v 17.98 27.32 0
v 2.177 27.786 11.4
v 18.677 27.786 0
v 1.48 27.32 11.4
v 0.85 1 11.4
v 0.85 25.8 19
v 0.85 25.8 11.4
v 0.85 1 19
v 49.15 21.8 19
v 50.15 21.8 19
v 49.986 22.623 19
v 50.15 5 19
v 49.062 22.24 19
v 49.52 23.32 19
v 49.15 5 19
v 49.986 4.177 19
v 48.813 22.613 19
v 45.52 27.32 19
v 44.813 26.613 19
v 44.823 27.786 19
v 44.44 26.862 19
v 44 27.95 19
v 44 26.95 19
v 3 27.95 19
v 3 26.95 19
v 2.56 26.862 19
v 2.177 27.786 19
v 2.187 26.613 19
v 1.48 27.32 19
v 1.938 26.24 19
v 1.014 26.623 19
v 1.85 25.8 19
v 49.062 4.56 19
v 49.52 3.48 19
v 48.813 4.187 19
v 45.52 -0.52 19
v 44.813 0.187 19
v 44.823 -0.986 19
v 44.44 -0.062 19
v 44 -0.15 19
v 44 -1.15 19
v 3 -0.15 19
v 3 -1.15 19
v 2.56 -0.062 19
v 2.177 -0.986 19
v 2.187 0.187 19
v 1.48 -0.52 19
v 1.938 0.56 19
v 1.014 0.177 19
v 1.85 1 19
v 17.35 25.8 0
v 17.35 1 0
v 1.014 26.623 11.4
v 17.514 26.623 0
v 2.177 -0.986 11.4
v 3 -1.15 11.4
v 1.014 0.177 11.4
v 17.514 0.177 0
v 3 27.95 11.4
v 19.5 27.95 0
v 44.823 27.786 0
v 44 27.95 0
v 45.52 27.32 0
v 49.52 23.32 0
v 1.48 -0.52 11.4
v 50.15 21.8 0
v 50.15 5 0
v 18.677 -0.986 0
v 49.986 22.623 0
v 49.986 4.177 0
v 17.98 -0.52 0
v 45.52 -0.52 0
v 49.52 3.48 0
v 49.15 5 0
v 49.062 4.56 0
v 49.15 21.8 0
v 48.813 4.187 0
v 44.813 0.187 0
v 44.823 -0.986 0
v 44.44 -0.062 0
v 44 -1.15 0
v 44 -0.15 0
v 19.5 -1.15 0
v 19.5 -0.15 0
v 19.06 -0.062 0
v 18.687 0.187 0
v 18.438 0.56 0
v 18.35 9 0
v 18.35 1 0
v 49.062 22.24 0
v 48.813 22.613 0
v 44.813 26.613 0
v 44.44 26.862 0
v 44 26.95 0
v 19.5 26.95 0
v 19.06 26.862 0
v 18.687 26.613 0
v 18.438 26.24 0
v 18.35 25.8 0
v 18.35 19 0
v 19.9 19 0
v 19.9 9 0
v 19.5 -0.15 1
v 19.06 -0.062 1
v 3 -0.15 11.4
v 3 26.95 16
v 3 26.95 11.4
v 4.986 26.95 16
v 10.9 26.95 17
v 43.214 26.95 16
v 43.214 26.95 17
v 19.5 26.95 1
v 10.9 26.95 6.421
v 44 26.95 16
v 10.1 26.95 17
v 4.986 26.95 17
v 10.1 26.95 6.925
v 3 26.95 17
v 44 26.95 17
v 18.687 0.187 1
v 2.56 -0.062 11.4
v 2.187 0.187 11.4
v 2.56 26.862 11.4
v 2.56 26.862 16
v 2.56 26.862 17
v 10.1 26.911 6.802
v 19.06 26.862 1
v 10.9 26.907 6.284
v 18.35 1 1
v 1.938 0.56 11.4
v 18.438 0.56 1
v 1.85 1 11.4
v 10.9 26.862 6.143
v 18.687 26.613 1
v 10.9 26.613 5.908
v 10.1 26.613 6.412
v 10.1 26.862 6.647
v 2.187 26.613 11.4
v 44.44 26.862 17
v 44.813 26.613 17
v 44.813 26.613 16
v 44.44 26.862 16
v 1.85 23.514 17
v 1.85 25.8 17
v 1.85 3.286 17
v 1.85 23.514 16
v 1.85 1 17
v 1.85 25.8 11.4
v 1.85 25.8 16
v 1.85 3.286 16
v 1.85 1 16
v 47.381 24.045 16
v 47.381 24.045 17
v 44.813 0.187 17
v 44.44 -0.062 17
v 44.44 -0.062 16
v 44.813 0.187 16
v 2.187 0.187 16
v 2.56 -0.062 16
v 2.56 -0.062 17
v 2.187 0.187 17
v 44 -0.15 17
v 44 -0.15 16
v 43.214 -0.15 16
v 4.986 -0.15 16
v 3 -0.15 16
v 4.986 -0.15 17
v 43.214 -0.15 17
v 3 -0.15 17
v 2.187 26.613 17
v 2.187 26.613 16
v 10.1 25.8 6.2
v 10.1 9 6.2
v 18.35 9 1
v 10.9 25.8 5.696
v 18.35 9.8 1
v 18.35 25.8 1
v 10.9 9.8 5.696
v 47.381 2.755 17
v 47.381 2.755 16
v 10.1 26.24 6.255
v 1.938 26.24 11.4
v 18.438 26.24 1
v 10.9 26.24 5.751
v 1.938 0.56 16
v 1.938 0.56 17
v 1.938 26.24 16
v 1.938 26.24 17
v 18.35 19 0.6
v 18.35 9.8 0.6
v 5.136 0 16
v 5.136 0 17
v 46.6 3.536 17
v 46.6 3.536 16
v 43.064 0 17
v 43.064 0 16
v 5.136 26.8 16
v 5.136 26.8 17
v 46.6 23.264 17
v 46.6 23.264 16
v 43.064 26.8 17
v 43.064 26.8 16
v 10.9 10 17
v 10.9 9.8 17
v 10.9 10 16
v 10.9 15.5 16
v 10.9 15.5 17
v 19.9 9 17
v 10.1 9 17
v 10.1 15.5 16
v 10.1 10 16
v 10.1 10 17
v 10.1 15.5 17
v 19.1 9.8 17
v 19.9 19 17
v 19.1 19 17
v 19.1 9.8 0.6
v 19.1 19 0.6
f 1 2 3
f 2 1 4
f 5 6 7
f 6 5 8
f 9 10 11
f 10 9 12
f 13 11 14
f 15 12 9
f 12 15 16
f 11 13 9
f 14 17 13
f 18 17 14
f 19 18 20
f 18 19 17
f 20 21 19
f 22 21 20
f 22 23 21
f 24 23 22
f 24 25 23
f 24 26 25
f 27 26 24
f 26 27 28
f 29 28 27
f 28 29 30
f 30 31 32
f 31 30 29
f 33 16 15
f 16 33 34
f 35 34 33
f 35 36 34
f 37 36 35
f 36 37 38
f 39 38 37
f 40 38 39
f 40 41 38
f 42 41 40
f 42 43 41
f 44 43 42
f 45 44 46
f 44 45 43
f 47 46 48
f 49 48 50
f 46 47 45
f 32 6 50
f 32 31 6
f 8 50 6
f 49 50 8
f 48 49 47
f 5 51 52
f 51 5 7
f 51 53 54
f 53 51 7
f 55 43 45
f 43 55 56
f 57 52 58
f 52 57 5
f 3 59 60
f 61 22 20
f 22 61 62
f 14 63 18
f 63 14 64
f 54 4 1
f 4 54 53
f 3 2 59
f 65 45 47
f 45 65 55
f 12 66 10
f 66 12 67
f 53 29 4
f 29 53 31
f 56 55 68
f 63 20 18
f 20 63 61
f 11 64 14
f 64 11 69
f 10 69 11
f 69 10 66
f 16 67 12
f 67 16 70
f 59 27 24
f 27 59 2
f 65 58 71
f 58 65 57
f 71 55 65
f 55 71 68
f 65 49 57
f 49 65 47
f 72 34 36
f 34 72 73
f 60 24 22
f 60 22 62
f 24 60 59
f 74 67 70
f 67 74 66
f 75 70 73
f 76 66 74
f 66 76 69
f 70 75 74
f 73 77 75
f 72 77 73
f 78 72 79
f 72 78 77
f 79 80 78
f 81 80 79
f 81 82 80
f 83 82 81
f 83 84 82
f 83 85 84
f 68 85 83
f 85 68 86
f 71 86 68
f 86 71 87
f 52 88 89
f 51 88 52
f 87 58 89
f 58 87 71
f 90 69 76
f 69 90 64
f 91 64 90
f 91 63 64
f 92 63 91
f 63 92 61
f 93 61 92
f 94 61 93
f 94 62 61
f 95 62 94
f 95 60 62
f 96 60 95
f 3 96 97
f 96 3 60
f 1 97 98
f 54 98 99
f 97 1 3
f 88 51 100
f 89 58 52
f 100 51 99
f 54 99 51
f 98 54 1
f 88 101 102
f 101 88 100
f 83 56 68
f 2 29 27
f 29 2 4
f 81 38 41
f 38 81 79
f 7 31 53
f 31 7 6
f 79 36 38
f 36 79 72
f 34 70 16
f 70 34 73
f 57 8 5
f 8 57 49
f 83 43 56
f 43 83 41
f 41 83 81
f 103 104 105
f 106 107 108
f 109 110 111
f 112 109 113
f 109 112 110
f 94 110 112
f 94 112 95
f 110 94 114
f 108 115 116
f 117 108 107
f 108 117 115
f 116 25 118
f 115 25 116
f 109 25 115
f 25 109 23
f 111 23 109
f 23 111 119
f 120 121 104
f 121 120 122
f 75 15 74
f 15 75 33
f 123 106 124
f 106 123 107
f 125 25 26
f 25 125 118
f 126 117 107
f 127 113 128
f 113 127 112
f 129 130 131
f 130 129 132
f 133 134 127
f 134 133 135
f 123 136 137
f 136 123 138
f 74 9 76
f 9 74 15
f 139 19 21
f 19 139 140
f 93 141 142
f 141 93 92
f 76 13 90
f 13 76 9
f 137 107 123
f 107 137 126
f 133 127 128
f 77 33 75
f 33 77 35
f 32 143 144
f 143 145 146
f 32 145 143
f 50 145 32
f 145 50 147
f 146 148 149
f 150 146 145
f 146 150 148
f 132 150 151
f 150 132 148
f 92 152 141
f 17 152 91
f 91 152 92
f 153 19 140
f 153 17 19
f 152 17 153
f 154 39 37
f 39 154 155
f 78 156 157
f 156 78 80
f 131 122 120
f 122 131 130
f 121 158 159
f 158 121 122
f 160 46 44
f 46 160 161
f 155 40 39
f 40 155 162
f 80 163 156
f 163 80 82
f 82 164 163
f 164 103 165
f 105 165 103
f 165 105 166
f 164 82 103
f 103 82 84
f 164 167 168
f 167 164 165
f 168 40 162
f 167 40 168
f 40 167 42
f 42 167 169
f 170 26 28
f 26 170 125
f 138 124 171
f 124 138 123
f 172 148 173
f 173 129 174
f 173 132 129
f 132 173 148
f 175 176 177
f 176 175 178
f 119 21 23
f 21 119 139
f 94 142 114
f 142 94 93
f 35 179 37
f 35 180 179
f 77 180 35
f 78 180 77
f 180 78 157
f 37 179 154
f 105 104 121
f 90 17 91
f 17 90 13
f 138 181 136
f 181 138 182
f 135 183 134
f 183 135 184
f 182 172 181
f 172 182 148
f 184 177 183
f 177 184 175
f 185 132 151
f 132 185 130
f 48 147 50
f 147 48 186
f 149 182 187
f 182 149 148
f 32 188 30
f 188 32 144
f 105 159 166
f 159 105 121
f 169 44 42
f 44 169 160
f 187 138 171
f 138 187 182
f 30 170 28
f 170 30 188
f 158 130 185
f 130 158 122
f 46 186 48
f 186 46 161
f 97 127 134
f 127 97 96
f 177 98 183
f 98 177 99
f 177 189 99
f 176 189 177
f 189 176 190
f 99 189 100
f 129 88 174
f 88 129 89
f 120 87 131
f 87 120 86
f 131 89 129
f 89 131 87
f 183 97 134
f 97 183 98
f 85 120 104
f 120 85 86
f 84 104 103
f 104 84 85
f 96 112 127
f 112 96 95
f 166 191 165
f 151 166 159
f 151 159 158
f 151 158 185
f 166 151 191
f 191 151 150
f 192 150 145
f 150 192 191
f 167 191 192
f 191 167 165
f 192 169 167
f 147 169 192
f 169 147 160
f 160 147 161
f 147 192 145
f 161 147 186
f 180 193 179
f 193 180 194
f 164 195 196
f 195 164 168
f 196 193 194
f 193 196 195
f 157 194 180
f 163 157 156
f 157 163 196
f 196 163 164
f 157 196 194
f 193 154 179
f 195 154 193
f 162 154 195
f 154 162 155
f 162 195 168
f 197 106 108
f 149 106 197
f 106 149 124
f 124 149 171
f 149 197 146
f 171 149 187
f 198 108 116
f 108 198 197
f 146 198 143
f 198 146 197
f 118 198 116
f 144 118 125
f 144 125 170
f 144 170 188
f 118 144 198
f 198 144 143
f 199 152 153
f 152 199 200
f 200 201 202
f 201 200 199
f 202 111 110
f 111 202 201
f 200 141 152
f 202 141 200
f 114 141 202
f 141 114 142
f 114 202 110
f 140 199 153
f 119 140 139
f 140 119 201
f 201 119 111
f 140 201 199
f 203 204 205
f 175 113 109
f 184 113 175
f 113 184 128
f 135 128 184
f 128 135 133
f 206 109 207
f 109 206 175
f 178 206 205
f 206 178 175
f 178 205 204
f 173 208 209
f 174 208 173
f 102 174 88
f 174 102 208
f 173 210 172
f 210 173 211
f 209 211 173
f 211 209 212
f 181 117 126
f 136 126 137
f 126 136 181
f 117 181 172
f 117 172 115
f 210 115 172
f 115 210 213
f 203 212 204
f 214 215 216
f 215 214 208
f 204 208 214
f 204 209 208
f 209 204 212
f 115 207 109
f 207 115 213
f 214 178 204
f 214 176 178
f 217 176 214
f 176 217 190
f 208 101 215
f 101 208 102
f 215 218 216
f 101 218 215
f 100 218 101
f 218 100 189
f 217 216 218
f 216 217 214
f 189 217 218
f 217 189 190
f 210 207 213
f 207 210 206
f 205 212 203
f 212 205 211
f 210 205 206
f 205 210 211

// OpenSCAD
// file: xt.scad
e=.001;
$fn=16;

xt60_w=15.7;
xt60_h=8;
xt60f_d = 15.7;
xt60f_base_d = 8;
xt60_combined_d=24.1;
xt60_pitch=7;
xt60_chamfer=2.5;
xt60f_pin_d=5.7;
xt60m_pin_d=4.7;
xt60_pin_w=4.5;
xt60_hole_w=4.5;
xt60_corner=.5;

module xt_pins(width, height, pitch)
{
	for (p=[-pitch/2, pitch/2])
	translate([p,0,0])
	cylinder(h=height, r=width/2);
}

module xt_base(w, h, d, chamfer, corner, margin=0, e=0)
{
	w = w-2*corner;
	h = h-2*corner;
	r = corner+margin;
	translate([0,0,-e])
    linear_extrude(d+2*e)
	hull()
    for (p=[ [w/2,-h/2],
	         [-w/2+chamfer, -h/2],
	         [-w/2, -h/2+chamfer],
	         [-w/2, h/2-chamfer],
	         [-w/2+chamfer, h/2],
	         [w/2, h/2]
	])
	translate(p)
	circle(r);
}

module xt60_combined_shell_cutout(margin=0,f_margin=-1,m_margin=-1, e=0)
{
	b=1; 
	xt_base(xt60_w, xt60_h, xt60_combined_d, xt60_chamfer, xt60_corner, margin, e);
	if (f_margin > margin)
	hull()
	{
		xt_base(xt60_w, xt60_h, xt60f_base_d, xt60_chamfer, xt60_corner, f_margin, e);
		translate([0,0,xt60f_base_d])
		xt_base(xt60_w, xt60_h, f_margin-margin, xt60_chamfer, xt60_corner, margin, e);
	}
	if (m_margin > margin)
	hull()
	{
		translate([0,0,xt60f_base_d-(m_margin-margin)])
		xt_base(xt60_w, xt60_h, m_margin-margin, xt60_chamfer, xt60_corner, margin, e);
		translate([0,0,xt60f_base_d])
		xt_base(xt60_w, xt60_h, xt60_combined_d-xt60f_base_d, xt60_chamfer, xt60_corner, m_margin, e);
	}
}


module xt60_combined_cutout(margin=0,f_margin=-1,m_margin=-1, e=0)
{
	b=1; 
	xt60_combined_shell_cutout(margin,f_margin,m_margin, e);

	translate([0, 0, -xt60f_pin_d-margin])
	xt_pins(xt60_pin_w+margin*2, xt60f_pin_d+b+margin, xt60_pitch);

	translate([0, 0, xt60_combined_d-b])
	xt_pins(xt60_pin_w+margin*2, xt60m_pin_d+b+margin, xt60_pitch);
}

module xt60f_cutout(margin=0,f_margin=-1,m_margin=-1,e=0)
{
	translate([0,0,-xt60f_d])
	xt60_combined_cutout(margin,f_margin,m_margin,e);
}

module xt60f_shell_cutout(margin=0,f_margin=-1,m_margin=-1,e=0)
{
	translate([0,0,-xt60f_d])
	xt60_combined_shell_cutout(margin,f_margin,m_margin,e);
}

module xt60f()
{
	b=1;
	translate([0,0,-xt60f_d])
	{
		xt_base(xt60_w, xt60_h, xt60f_base_d, xt60_chamfer, xt60_corner, 0, e);

		translate([0,0,b])
		difference()
		{
			xt_base(xt60_w-2*xt60_corner, xt60_h-2*xt60_corner, xt60f_d-b, xt60_chamfer, xt60_corner, 0, e);
			xt_pins(xt60_hole_w, xt60f_d, xt60_pitch);

		}

		difference()
		{
			translate([0, 0, -xt60f_pin_d])
			xt_pins(xt60_pin_w, xt60f_pin_d+b, xt60_pitch);

			translate([0, 0, -xt60f_pin_d-b])
			xt_pins(xt60_pin_w*.8, xt60f_pin_d+b, xt60_pitch);
		}
	}
}

xt60f();
%xt60f_cutout(margin=.4,m_margin=1,e=e);
// file: powerplug.scad
e=0.001;

border_w=51;
border_h=31.2;
border_d=3.5;

w=47;
h=26.8;
d=22;
chamf=4;

corner=1;

module plug(margin=0, extra_depth=0)
{
	$fn=16;

	d = d+extra_depth;
	border_w = border_w-2*corner;
	border_h = border_h-2*corner;
	w = w-2*corner;
	h = h-2*corner;
	r = corner+margin;

	color([.3,.3,.3])
	translate([corner,0,corner])
	rotate([90,0,0])
	{
		translate([0,(h-border_h)/2,0])
		linear_extrude(border_d+margin)
		hull()
		for(p=[ [0, 0],
		        [0, border_h],
		        [border_w, border_h],
		        [border_w, 0]
		])
		translate(p)
		circle(r);

		translate([(border_w-w)/2,0,-d])
		linear_extrude(d+e)
		hull()
		for (p=[ [0, 0],
		         [0, h],
		         [w-chamf, h],
		         [w, h-chamf],
		         [w, chamf],
		         [w- chamf, 0],
		])
		translate(p)
		circle(r);
	}
}

module plug_latch(margin=0)
{
	rotate([90,0,0])
	rotate([0,90,0])
	linear_extrude(9)
	{
		polygon([ [0, -1], [0, 1+margin], [9, margin]]);
	}
}

module plug_latches(margin=0)
{
	for (x=[9.5,32])
	for (y_flip=[-1, 1])
	translate([(border_w-w)/2+x,1.6, h/2])
	scale([1,1,y_flip])
	translate([0,0,h/2])
	plug_latch(margin);
}


module plug_latches_keepout(margin=0, extra_depth=0)
{
	for (x=[9.5,32])
	for (y_flip=[-1, 1])
	translate([(border_w-w)/2+x,1.6, h/2])
	scale([1,1,y_flip])
	translate([0,0,h/2])
	cube([9,d+extra_depth-1.6+e,1+margin]);
}

plug();

plug_latches();

#plug_latches_keepout();

%plug(margin=.3);
// file: mw_lrs.scad
e=.001;
$fn=16;

mw_lrs_w=115;
mw_lrs_h=30;
mw_lrs_d=215;


mw_lrs_holes_pitch_d  = 150;
mw_lrs_holes_pitch_w  = 50;
mw_lrs_holes_height_h = 12.5;

mw_lrs_gap_h = 23;
mw_lrs_gap_d = 18.5;

mw_lrs_case_thickness = 1.6;

m4_thread = 4;

mw_lrs_screw_terminal_x=8.5;
mw_lrs_screw_terminal_w=88;
mw_lrs_screw_terminal_d=15;
mw_lrs_screw_terminal_h=15;
mw_lrs_screw_terminal_pitch = 9.5;
mw_lrs_screw_terminal_gap_w = 8;
mw_lrs_screw_terminal_gap_d = 14;
mw_lrs_screw_terminal_gap_z = 7;
mw_lrs_screw_terminal_gap_h = 6;

module mw_lrs_side_holes()
{
	translate( [0, 0, mw_lrs_holes_height_h] )
	for( r = [ 0, 180 ] )
	rotate( [0, r, 0] )
	for( y = [ (mw_lrs_d-mw_lrs_holes_pitch_d)/2, (mw_lrs_d+mw_lrs_holes_pitch_d)/2 ] )
	translate( [-mw_lrs_w/2, y, 0] )
	rotate( [0, 90, 0] )
	children();
}

module mw_lrs_bottom_holes()
{
	for( x = [ -mw_lrs_holes_pitch_w/2, mw_lrs_holes_pitch_w/2 ] )
	for( y = [ (mw_lrs_d-mw_lrs_holes_pitch_d)/2, (mw_lrs_d+mw_lrs_holes_pitch_d)/2 ] )
	translate( [x, y, 0] )
	children();
}

module mw_lrs_holes()
{
	mw_lrs_side_holes() children();
	mw_lrs_bottom_holes() children();
}

module mw_lrs_screw_terminal()
{
	colors = [
		"red", "red", "red",
		"black", "black", "black",
		"green", "blue", "brown",
	];
	b=1;
	translate([mw_lrs_screw_terminal_x, mw_lrs_case_thickness, mw_lrs_h-mw_lrs_gap_h-e])
	{
		difference()
		{
			translate([-mw_lrs_screw_terminal_w/2, 0, 0])
			cube([mw_lrs_screw_terminal_w, mw_lrs_screw_terminal_d, mw_lrs_screw_terminal_h+e]);
			for (i=[0:8])
			translate([(i-4)*9.5-mw_lrs_screw_terminal_gap_w/2, -b, mw_lrs_screw_terminal_gap_z])
			cube([mw_lrs_screw_terminal_gap_w, mw_lrs_screw_terminal_gap_d+b, mw_lrs_screw_terminal_gap_h]);
		}

		for (i=[0:8])
		translate([(i-4)*9.5-mw_lrs_screw_terminal_gap_w/2, -0, mw_lrs_screw_terminal_h])
		color(colors[i])
		cube([mw_lrs_screw_terminal_gap_w,mw_lrs_screw_terminal_gap_d,.1]);

	}
}

module mw_lrs_vents()
{
	b=1;
	hole=4;
	for (y = [36, 44, 52])
	for (i = [-1, 1])
	hull()
	{
		translate([i*(19/2+hole/2), y, mw_lrs_h-mw_lrs_case_thickness-b])
			cylinder(mw_lrs_case_thickness+2*b, r=hole/2);

		translate([i*(19/2+hole/2+33), y, mw_lrs_h-mw_lrs_case_thickness-b])
			cylinder(mw_lrs_case_thickness+2*b, r=hole/2);
	}

	translate([-mw_lrs_w/2+36.7, mw_lrs_d-47.45,mw_lrs_h-mw_lrs_case_thickness-b])
		cylinder(mw_lrs_case_thickness+2*b, r=50/2);
}

module mw_lrs_vents_keepout(h, margin=0)
{
	b=1;
	hole=4;
	hull()
	for (y = [36, 44, 52])
	for (i = [-1, 1])
	{
		translate([i*(19/2+hole/2), y, mw_lrs_h-b])
			cylinder(h+b, r=hole/2+margin);

		translate([i*(19/2+hole/2+33), y, mw_lrs_h-b])
			cylinder(h+b, r=hole/2+margin);
	}

	translate([-mw_lrs_w/2+36.7, mw_lrs_d-47.45,mw_lrs_h-b])
		cylinder(h+b, r=50/2);
}

module mw_lrs()
{
	b=1; 

	union()
	{
		color([.75,.75,.75])
		difference()
		{

			translate([-mw_lrs_w/2,0,0])
			cube([mw_lrs_w, mw_lrs_d, mw_lrs_h]);

			union()
			{
				translate([-mw_lrs_w/2+mw_lrs_case_thickness, -b, mw_lrs_h-mw_lrs_gap_h] )
				cube( [ mw_lrs_w-2*mw_lrs_case_thickness, b+mw_lrs_gap_d, mw_lrs_gap_h+b] );

				translate([-mw_lrs_w/2+mw_lrs_case_thickness, mw_lrs_gap_d-e, mw_lrs_h-mw_lrs_gap_h] )
				cube( [ mw_lrs_w-2*mw_lrs_case_thickness, mw_lrs_d-mw_lrs_gap_d+e-mw_lrs_case_thickness, mw_lrs_gap_h-mw_lrs_case_thickness] );

				mw_lrs_vents();

				mw_lrs_holes()
				{
					translate([0,0,-e])
					cylinder(h=5+e, r=m4_thread/2);
				}
			}
		}
		color([.1, .3, .1])
		translate([-mw_lrs_w/2+mw_lrs_case_thickness, 0, mw_lrs_h-mw_lrs_gap_h-e])
		cube([mw_lrs_w-2*mw_lrs_case_thickness, mw_lrs_d-mw_lrs_case_thickness, e+.1]);
		mw_lrs_screw_terminal();
	}
}

module mw_lrs_keepout(margin=0, e=0)
{
	b=1; 

	w=mw_lrs_w+margin*2;
	d=mw_lrs_d+margin*2;
	h=mw_lrs_h+margin*2;

	translate([-w/2,-margin,-margin])
	cube([w, d, h]);
}

mw_lrs();
%mw_lrs_keepout(margin=.4);

module m4_hole(h, margin=0)
{
	translate([0,0,-h])
	cylinder(h=h+e, r=(m4_thread+margin)/2);
}

%mw_lrs_holes()
m4_hole(10);
// file: grid.scad
module bars(width, height, n, pitch, bar_width)
{
	for (i=[0:n-1])
		translate([0, (i-(n-1)/2)*pitch-bar_width/2, 0])
			cube([width, bar_width, height]);
}

module grid(width, depth, height, n_rows, n_cols, pitch=10, x_pitch=-1, y_pitch=-1, bar_width=1, x_bar_width=-1, y_bar_width=-1)
{
	x_pitch = x_pitch > 0 ? x_pitch : pitch;
	y_pitch = y_pitch > 0 ? y_pitch : pitch;
	x_bar_width = x_bar_width > 0 ? x_bar_width : bar_width;
	y_bar_width = y_bar_width > 0 ? y_bar_width : bar_width;

	translate( [0, depth/2, 0] )
		bars( width, height, n_rows, y_pitch, y_bar_width );
	translate( [width/2, 0, 0] )
		rotate([0,0,90])
			bars( depth, height, n_cols, x_pitch, x_bar_width) ;
}

grid(100, 50, 1, 4, 8);
// file: utils.scad
module xz_toward_y()
{
	scale([1, 1, -1])
	rotate([-90,0,0])
	children();
}

module anchor(dim, anchor=[0,0,0])
{
	translate([-(1+anchor.x)*dim.x/2, -(1+anchor.y)*dim.y/2, -(1+anchor.z)*dim.z/2])
	children();
}

module block(dim, anchor=[0,0,0])
{
	anchor(dim, anchor)
	cube(dim);
}

module rounded_block_z(dim, anchor=[0,0,0], r=0)
{
	anchor(dim, anchor)
	linear_extrude(dim.z)
	hull()
	for (p=[ [r,r], [dim.x-r, r], [dim.x-r, dim.y-r], [r, dim.y-r] ] )
	translate(p)
	circle(r);
}

module rounded_block_y(dim, anchor=[0,0,0], r=0)
{
	anchor(dim, anchor)
	xz_toward_y()
	linear_extrude(dim.y)
	hull()
	for (p=[ [r,r], [dim.x-r, r], [dim.x-r, dim.z-r], [r, dim.z-r] ] )
	translate(p)
	circle(r);
}

module chamfer_block_y(dim, anchor=[0,0,0], r=0)
{
	anchor(dim, anchor)
	hull()
	{
		translate([r,0,0])
		cube([dim.x-r*2, dim.y, dim.z]);

		translate([0,0,r])
		cube([dim.x, dim.y, dim.z-r*2]);
	}
}

module chamfer_block_z(dim, anchor=[0,0,0], r=0)
{
	anchor(dim, anchor)
	hull()
	{
		translate([r,0,0])
		cube([dim.x-r*2, dim.y, dim.z]);

		translate([0,r,0])
		cube([dim.x, dim.y-r*2, dim.z]);
	}
}

module chamfer_block(dim, anchor=[0,0,0], r=0)
{
	anchor(dim, anchor)
	hull()
	{
		translate([r,r,0])
		cube([dim.x-r*2, dim.y-r*2, dim.z]);

		translate([r,0,r])
		cube([dim.x-r*2, dim.y, dim.z-r*2]);

		translate([0,r,r])
		cube([dim.x, dim.y-r*2, dim.z-r*2]);
	}
}

module at_grid(c,r,pitch,anchor=[0,0,0])
{
	dim=[(c-1)*pitch,(r-1)*pitch,1];
	a=[anchor[0],anchor[1],-1];
	anchor(dim,a)
	for(x=[0:c-1])
	for(y=[0:r-1])
	translate([x*pitch,y*pitch,0])
	children();
}

module ngon_outer(n,h,r)
{
	cylinder(h,r=r, $fn=n);
}

module ngon_inner(n,h,r)
{
	a=360/n/2;
	r_cyl = r/cos(a);
	rotate([0,0,a])
	cylinder(h,r=r_cyl, $fn=n);
}


module ngon_cone_outer(n,h,r1,r2)
{
	cylinder(h,r1=r1,r2=r2, $fn=n);
}

module ngon_cone_inner(n,h,r1,r2)
{
	a=360/n/2;
	r1_cyl = r1/cos(a);
	r2_cyl = r2/cos(a);
	rotate([0,0,a])
	cylinder(h,r1=r1_cyl,r2=r2_cyl, $fn=n);
}

module preview()
{
	if ($preview)
	children();
}
// main file
use <utils.scad>
use <grid.scad>

use <mw_lrs.scad>
use <powerplug.scad>
use <xt.scad>

$fn=16;
e=.001;


margin=.15;
shield_thickness=1.;
shield_bottom=.6;

border_w=51;
border_h=31.2;
border_d=3.5;

w=47;
h=26.8;
d=22;
chamf=4;

corner=1;

module plug_keepout(margin=0, depth=39, e=0)
{
	$fn=16;

	d = .1+e;
	border_w = border_w-2*corner;
	border_h = border_h-2*corner;
	w = w-2*corner;
	h = h-2*corner;
	r = corner+margin;
	off = 16.5;

	color([.3,.3,.3])
	translate([corner,depth-.1,corner])
	rotate([90,0,0])
	{
		translate([(border_w-w)/2,0,-d])
		linear_extrude(d+e)
		hull()
		for (p=[ [off, 0],
		         [off, h],
		         [w-chamf, h],
		         [w, h-chamf],
		         [w, chamf],
		         [w- chamf, 0],
		])
		translate(p)
		circle(r);
	}
}

module plug_hull(margin, d, e=0)
{
	hull()
	{
		difference()
		{
		plug(margin=margin, extra_depth=5+shield_bottom);
		translate([-10,-10,-10])
		cube([100, 30, 100]);
		}
		plug_keepout(margin=margin, depth=d, e=0);
	}
	plug_keepout(margin=margin, depth=d, e=e);
	
}

inner_w=.8;

module power_shield()
{
color("red")
	union()
	{
	difference()
	{
		union()
		{
			plug_hull(margin=margin+shield_thickness, d=39);
		}
		union()
		{
		plug_hull(margin=margin, d=38, e=2);
		}
	}

	intersection()
	{
		plug_hull(margin=margin+shield_thickness/2, d=38.5, e=2);
		difference()
		{
			union()
			{
				translate([(border_w-w)/2+8.5-inner_w/2, 22, h/2-4-inner_w/2])
				cube([inner_w, 20, 20]);

				translate([(border_w-w)/2+8.5, 22, h/2-4-inner_w/2])
				cube([9., 17, inner_w]);

				translate([(border_w-w)/2+17.5-inner_w/2, 22, h/2-4-inner_w/2])
				cube([inner_w, 17, 10]);

				translate([(border_w-w)/2+15-inner_w/2, 38.4, h/2-4-inner_w/2])
				cube([2.5, shield_bottom, 10]);

				for (y=[0,h])
				for (x=[0,w-2])
				translate([(border_w-w)/2+x-5/sqrt(2)-inner_w/2, 22, y])
				rotate([0,45,0])
				cube([5,1,5]);

			}
			translate([(border_w-w)/2+6.5-inner_w/2, 21, h/2-6/2-inner_w/2])
			cube([5, 2, 5.5]);
		}
	}
}
}

rotate([-90,0,0])
translate([0,-39,0])
{
	power_shield();

	//preview()
	//plug();
}
